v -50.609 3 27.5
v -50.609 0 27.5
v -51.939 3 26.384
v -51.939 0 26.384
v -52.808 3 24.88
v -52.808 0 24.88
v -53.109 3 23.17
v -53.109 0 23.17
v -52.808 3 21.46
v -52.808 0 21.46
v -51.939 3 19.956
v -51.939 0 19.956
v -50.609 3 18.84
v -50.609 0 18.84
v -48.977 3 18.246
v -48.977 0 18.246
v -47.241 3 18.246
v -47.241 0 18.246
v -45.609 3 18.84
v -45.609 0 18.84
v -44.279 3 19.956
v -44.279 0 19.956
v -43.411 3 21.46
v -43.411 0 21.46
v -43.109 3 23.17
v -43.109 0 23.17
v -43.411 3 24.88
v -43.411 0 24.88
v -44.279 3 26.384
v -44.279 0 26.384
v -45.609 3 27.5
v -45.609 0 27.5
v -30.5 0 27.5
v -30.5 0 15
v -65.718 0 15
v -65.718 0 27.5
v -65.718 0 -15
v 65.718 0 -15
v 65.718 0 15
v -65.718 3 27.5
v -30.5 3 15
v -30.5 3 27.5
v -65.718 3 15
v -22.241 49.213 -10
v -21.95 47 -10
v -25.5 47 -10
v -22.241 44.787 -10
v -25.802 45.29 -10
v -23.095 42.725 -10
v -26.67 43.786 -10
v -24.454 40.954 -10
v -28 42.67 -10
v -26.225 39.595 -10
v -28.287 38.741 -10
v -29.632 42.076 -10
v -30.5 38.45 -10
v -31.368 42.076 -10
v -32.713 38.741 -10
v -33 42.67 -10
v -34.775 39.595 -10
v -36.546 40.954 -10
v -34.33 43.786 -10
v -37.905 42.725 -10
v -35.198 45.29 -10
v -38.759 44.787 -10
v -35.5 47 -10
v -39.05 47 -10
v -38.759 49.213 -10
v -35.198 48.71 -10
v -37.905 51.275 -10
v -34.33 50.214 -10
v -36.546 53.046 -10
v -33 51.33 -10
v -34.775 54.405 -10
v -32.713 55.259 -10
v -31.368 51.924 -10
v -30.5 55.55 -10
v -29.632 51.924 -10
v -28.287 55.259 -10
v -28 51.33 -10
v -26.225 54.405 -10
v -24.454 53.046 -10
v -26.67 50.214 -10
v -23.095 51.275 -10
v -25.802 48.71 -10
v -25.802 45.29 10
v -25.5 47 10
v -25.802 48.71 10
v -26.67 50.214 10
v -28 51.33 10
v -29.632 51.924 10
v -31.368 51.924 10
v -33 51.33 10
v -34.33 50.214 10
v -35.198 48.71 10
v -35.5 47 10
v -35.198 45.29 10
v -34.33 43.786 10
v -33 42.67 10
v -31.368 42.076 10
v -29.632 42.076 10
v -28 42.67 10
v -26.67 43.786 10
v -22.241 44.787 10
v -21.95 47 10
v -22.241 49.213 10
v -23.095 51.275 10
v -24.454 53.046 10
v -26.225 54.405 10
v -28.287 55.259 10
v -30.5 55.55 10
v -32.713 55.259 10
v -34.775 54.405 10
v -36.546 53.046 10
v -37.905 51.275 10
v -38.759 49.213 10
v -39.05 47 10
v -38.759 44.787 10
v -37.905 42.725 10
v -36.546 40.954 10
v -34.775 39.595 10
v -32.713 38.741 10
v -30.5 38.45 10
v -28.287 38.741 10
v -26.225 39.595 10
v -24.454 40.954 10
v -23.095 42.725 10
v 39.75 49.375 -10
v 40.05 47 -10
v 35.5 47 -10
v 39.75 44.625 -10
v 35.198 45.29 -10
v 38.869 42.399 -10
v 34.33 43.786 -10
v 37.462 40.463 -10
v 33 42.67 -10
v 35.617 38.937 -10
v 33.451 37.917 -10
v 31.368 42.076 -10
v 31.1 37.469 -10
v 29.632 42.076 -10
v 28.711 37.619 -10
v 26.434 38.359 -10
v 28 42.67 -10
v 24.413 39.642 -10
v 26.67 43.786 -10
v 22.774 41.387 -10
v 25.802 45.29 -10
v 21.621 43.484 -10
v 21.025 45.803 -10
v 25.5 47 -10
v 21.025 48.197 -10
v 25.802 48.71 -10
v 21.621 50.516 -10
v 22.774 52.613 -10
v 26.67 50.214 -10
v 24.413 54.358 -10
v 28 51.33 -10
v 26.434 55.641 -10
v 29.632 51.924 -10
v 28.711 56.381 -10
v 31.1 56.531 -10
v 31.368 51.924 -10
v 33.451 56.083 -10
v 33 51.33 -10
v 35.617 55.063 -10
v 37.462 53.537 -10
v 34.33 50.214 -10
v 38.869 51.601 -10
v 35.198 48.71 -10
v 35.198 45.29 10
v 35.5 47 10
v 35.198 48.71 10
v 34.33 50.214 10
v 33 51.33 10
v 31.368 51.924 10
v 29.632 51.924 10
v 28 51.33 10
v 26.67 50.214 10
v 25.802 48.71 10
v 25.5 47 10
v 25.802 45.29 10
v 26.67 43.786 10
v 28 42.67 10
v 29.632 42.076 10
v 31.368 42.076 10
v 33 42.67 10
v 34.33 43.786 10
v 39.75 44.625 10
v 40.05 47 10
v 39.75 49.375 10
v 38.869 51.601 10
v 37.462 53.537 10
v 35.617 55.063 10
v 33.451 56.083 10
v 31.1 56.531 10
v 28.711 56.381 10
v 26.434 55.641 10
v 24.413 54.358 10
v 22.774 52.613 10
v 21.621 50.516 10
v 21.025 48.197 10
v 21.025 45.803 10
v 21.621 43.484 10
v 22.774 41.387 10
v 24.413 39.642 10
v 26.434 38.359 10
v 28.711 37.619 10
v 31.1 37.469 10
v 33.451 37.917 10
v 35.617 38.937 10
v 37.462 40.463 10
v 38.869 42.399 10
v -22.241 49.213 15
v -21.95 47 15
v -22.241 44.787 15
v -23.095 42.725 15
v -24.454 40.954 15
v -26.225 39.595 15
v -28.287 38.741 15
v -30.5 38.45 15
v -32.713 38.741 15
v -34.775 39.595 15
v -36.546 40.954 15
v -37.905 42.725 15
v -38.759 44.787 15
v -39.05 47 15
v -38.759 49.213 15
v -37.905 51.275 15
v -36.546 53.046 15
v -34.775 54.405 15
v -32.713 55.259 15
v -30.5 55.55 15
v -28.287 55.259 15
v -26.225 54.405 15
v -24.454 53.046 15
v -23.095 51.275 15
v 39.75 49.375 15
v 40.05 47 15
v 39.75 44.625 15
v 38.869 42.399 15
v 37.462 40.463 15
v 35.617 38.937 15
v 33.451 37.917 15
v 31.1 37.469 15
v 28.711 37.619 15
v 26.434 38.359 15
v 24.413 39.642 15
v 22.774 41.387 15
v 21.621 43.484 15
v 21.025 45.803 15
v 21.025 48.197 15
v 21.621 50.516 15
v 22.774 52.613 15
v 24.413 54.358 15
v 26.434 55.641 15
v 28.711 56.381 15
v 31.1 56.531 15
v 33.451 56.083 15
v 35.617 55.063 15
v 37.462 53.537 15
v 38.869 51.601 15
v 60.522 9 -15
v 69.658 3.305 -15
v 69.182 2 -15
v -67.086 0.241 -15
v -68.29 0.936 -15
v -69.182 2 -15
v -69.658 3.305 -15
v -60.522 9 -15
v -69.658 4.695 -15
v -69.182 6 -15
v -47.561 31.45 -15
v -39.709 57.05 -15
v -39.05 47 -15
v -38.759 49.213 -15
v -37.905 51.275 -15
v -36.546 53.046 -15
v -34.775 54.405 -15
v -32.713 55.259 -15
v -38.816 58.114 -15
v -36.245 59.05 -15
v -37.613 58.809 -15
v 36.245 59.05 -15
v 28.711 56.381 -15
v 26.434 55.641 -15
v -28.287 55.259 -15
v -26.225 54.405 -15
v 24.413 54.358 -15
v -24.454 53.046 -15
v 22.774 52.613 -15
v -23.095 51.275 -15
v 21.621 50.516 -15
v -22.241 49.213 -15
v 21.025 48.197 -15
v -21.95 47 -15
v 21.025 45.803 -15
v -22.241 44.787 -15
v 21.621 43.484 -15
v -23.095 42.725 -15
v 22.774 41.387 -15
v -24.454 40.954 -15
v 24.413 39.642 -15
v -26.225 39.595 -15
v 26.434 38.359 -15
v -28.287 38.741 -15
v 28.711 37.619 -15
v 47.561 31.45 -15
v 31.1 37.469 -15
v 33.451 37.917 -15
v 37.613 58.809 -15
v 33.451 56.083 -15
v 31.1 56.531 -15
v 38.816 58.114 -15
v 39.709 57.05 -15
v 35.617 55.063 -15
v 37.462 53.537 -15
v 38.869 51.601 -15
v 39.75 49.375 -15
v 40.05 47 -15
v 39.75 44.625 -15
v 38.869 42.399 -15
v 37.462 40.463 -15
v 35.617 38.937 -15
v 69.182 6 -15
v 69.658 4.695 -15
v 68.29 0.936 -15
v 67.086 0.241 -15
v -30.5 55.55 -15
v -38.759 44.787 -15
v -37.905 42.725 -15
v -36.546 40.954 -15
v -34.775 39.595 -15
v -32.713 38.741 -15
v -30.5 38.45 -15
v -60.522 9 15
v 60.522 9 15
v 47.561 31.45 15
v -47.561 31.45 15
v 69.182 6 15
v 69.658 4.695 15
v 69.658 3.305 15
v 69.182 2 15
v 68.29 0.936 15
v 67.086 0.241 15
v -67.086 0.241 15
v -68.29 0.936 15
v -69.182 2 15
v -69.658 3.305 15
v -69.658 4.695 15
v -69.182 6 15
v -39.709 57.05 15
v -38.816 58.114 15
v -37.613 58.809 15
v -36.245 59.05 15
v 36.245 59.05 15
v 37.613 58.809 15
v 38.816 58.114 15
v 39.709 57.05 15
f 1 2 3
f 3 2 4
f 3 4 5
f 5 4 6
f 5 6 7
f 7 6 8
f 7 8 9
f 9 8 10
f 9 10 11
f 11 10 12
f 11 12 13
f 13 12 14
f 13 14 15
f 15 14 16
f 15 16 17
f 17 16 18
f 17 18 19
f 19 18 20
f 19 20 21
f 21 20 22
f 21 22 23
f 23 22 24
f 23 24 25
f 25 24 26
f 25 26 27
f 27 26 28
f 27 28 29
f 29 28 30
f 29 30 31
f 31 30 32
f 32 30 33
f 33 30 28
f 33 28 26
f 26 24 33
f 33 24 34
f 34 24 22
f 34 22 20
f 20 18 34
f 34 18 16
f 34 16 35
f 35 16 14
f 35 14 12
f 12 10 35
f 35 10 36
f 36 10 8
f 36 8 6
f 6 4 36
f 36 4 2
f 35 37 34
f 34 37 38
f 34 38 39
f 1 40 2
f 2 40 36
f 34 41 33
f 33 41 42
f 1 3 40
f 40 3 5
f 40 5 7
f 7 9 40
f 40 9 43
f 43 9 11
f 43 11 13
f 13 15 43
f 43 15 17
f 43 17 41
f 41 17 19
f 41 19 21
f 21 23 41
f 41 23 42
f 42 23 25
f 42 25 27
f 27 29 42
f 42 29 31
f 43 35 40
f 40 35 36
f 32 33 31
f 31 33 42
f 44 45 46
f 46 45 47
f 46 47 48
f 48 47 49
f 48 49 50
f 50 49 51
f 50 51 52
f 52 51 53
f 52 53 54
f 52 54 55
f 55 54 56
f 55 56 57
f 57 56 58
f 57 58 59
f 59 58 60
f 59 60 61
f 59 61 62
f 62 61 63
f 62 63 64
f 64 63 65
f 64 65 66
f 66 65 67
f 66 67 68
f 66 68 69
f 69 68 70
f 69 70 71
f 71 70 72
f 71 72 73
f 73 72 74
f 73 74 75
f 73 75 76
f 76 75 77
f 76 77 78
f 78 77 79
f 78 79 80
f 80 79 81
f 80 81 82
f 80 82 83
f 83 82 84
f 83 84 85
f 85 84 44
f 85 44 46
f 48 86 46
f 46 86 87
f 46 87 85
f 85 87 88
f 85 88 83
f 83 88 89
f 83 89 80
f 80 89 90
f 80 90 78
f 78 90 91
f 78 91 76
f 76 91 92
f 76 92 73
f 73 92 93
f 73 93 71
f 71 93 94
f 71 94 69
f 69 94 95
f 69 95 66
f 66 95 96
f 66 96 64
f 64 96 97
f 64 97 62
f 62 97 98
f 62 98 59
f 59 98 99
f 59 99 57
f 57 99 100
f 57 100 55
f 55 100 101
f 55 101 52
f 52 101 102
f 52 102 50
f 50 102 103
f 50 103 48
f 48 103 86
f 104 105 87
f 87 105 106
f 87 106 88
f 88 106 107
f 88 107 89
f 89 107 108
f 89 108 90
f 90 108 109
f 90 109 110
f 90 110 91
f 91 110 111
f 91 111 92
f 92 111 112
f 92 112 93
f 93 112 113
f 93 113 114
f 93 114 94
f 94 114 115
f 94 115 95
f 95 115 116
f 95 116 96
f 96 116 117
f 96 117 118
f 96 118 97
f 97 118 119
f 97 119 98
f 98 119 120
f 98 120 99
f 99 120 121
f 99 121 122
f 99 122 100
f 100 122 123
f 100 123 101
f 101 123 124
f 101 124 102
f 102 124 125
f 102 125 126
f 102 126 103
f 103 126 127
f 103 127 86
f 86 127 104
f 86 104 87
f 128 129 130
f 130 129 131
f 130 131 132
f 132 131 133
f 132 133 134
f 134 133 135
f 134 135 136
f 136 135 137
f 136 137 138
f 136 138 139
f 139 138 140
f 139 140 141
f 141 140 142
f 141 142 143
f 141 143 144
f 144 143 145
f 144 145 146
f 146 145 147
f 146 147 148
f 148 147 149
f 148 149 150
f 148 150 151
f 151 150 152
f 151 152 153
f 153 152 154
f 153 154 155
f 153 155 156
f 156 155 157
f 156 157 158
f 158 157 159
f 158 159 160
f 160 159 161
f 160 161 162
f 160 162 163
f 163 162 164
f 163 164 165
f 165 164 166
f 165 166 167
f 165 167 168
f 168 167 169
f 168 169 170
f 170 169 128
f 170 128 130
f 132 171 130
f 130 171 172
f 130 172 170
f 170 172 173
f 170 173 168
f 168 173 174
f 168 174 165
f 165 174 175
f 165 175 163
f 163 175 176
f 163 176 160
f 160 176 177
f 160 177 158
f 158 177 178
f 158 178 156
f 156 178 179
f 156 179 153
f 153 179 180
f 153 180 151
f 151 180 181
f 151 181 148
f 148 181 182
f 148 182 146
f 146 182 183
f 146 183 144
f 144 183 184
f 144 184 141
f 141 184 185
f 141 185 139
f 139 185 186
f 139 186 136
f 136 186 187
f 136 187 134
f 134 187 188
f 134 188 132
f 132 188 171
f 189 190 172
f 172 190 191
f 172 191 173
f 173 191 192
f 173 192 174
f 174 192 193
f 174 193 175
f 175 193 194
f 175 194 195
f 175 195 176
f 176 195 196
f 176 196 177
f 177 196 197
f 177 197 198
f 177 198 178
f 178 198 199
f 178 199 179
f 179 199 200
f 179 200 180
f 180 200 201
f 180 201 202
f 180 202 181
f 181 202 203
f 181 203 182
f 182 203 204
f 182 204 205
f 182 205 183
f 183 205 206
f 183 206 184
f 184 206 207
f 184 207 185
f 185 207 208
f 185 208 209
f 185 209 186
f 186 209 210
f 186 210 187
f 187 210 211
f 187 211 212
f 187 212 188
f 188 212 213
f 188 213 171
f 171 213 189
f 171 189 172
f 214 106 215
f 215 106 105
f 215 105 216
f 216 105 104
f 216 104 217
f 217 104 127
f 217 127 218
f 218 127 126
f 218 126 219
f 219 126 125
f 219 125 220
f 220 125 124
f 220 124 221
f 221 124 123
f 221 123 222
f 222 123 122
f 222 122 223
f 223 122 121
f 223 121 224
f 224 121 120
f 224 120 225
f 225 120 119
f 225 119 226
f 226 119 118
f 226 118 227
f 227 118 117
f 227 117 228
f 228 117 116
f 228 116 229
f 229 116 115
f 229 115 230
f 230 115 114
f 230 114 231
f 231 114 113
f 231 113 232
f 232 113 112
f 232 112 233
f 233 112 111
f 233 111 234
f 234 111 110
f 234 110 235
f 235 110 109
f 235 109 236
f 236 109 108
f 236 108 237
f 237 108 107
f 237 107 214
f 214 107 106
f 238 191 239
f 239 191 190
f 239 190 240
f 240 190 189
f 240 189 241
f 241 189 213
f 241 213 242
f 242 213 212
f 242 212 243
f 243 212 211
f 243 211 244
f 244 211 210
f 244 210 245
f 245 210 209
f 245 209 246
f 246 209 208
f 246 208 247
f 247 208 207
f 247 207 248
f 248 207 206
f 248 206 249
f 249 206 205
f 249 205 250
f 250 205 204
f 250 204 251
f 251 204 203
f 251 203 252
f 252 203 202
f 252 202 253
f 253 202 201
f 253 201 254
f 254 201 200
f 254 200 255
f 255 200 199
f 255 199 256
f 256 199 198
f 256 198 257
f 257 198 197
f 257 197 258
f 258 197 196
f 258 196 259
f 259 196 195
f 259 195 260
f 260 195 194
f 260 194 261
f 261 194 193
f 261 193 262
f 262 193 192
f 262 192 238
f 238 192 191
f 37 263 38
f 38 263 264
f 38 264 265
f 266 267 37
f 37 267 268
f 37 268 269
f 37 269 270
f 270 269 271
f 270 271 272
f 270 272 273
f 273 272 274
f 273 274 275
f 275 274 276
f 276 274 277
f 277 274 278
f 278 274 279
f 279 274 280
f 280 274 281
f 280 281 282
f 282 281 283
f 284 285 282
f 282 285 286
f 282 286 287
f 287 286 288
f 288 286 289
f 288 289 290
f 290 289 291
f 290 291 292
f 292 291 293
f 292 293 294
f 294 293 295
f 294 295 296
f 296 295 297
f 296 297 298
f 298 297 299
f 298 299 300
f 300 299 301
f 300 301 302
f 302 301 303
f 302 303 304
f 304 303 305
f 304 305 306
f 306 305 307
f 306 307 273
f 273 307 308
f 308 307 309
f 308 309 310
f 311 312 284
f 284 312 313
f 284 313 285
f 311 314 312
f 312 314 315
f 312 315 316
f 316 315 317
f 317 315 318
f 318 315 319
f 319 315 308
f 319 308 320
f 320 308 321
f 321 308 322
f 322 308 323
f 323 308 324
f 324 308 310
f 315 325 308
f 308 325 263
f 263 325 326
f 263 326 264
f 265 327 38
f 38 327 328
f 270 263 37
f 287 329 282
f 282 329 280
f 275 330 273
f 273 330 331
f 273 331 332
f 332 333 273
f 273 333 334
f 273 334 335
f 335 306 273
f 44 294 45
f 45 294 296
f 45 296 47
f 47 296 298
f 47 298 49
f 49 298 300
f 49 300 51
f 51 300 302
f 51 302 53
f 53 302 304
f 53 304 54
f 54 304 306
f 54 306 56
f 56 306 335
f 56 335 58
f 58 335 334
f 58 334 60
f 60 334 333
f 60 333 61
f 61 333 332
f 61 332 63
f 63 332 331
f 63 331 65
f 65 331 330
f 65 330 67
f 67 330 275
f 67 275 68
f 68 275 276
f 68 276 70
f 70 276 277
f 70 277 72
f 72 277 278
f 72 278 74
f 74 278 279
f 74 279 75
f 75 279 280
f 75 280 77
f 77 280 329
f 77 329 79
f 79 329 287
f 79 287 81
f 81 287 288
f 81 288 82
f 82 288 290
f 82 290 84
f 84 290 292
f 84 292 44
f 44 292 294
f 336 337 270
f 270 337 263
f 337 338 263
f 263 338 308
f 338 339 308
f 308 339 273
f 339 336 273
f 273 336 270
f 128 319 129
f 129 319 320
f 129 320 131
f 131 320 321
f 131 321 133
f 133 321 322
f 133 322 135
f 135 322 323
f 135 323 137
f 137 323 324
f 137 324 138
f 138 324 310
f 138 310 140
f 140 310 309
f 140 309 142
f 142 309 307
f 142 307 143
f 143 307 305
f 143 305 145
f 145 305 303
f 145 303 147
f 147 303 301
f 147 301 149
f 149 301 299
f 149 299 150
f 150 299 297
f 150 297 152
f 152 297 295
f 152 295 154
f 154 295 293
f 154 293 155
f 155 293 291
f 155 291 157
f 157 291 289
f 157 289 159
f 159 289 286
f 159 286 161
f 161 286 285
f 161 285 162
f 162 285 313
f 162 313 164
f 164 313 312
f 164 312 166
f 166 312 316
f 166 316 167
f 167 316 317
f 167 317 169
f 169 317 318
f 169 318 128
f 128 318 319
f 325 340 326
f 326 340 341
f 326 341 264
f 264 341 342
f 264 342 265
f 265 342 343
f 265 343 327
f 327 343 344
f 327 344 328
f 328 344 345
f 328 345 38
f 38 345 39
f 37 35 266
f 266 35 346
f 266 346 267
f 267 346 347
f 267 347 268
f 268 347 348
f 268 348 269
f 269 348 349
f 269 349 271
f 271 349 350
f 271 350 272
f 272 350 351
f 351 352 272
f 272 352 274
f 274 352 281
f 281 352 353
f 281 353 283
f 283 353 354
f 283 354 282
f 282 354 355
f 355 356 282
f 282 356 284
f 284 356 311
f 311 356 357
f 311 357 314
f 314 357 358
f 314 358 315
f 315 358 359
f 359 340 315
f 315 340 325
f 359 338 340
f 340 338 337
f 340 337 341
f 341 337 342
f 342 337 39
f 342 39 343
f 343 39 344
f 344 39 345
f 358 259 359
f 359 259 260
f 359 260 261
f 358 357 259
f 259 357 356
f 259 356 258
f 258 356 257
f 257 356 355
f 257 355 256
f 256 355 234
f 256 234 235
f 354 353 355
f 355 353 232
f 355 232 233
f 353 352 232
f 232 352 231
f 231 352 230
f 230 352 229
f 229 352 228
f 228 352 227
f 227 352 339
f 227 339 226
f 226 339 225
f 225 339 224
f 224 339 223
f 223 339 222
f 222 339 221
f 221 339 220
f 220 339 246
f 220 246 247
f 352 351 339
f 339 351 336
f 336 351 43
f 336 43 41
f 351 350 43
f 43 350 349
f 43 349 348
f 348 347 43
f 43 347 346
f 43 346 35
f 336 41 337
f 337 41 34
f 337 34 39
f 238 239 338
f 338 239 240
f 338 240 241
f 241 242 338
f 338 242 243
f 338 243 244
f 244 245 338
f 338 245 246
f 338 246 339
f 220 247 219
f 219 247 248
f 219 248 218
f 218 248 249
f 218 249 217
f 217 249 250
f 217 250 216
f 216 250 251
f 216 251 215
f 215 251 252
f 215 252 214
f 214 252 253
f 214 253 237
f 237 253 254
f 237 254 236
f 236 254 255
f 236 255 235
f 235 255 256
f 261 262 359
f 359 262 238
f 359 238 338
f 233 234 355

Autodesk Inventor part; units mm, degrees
ref_plane "YZ Plane" through (0, 0, 0) normal (1, 0, 0) x (0, 1, 0)
ref_plane "XZ Plane" through (0, 0, 0) normal (0, 1, 0) x (-1, 0, 0)
ref_plane "XY Plane" through (0, 0, 0) normal (0, 0, 1) x (1, 0, 0)
sketch "Sketch1" plane through (0, 0, 0) normal (0, 0, 1) x (1, 0, 0)
  line L0 (-65.7184, 0) -> (65.7184, 0)
  line L1 (-36.2446, 59.05) -> (36.2446, 59.05)
  circle A0 centre (-30.5, 47) radius 8.55
  line L2 (0, 59.05) -> (0, 0) construction
  circle A1 centre (-30.5, 47) radius 5
  circle A2 centre (30.5, 47) radius 5
  arc A3 (-69.1825, 6) -> (-65.7184, 0) centre (-65.7184, 4) ccw
  arc A4 (-36.2446, 59.05) -> (-39.7087, 57.05) centre (-36.2446, 55.05) ccw
  line L3 (-69.1825, 6) -> (-39.7087, 57.05)
  arc A5 (65.7184, 0) -> (69.1825, 6) centre (65.7184, 4) ccw
  arc A6 (39.7087, 57.05) -> (36.2446, 59.05) centre (36.2446, 55.05) ccw
  line L4 (69.1825, 6) -> (39.7087, 57.05)
  line L5 (-65.7184, 3) -> (-30.5, 3)
  line L6 (-30.5, 3) -> (-30.5, 0)
  line L7 (-30.5, 0) -> (-65.7184, 0)
  line L8 (-65.7184, 0) -> (-65.7184, 3)
  line L9 (-30.5, 38.45) -> (0, 38.45) construction
  line L10 (-30.5, 3) -> (0, 3) construction
  line L11 (0, 38.45) -> (0, 3) construction
  line L12 (-60.5222, 9) -> (-47.5607, 31.45)
  line L13 (-47.5607, 31.45) -> (47.5607, 31.45)
  line L14 (47.5607, 31.45) -> (60.5222, 9)
  line L15 (60.5222, 9) -> (-60.5222, 9)
  circle A7 centre (30.5, 47) radius 9.55
  point P0 (-65.7184, 1.5)
  point P1 (-48.1092, 0)
  point P2 (-65.7184, 0)
  point P3 (-30.5, 0)
  point P4 (-30.5, 1.5)
  point P5 (0, 20.725)
  point P6 (0, 20.725)
  point P7 (0, 20.725)
  dimension "d1" = 17.1
  dimension "d3" = 3.5
  dimension "d7" = 10
  dimension "d10" = 4
  dimension "d11" = 13
  dimension "d12" = 60
  dimension "d17" = 3
  dimension "d22" = 44
  dimension "d40" = 6
  dimension "d41" = 6
  dimension "d43" = 6
  dimension "d44" = 19.1
  dimension "d45" = 61
  dimension "d46" = 6
extrude "Extrusion1" add sketch "Sketch1" along normal mid plane 30 contours A3 L3 A4 L1 A6 L4 A5 L0 L6 L5 L8
extrude "Extrusion2" add sketch "Sketch1" along normal mid plane 20 contours A0 | A7
extrude "Extrusion3" add sketch "Sketch1" along normal blind 27.5 contours L8 L5 L6 L0
sketch "Sketch2" plane through (-65.7184, 3, 15) normal (0, 1, 0) x (1, 0, 0)
  line L0 (0, -12.5) -> (35.2184, -12.5) projected
  arc A0 (20.1092, -12.5) -> (15.1092, -12.5) centre (17.6092, -8.1699) ccw
  line L1 (35.2184, 0) -> (131.4367, 0) construction
  line L2 (35.2184, 0) -> (35.2184, -12.5) construction
  point P0 (65.7184, 15)
  point P1 (17.6092, -12.5)
  point P2 (17.6092, -3.1699)
  dimension "d21" = 5
  dimension "d25" = 5
extrude "Extrusion4" cut sketch "Sketch2" against normal through all
extrude "Extrusion6" add sketch "Sketch1" against normal blind 15 contours L8 L5 L6 L0
properties part number "EngineMount - Big hole"
